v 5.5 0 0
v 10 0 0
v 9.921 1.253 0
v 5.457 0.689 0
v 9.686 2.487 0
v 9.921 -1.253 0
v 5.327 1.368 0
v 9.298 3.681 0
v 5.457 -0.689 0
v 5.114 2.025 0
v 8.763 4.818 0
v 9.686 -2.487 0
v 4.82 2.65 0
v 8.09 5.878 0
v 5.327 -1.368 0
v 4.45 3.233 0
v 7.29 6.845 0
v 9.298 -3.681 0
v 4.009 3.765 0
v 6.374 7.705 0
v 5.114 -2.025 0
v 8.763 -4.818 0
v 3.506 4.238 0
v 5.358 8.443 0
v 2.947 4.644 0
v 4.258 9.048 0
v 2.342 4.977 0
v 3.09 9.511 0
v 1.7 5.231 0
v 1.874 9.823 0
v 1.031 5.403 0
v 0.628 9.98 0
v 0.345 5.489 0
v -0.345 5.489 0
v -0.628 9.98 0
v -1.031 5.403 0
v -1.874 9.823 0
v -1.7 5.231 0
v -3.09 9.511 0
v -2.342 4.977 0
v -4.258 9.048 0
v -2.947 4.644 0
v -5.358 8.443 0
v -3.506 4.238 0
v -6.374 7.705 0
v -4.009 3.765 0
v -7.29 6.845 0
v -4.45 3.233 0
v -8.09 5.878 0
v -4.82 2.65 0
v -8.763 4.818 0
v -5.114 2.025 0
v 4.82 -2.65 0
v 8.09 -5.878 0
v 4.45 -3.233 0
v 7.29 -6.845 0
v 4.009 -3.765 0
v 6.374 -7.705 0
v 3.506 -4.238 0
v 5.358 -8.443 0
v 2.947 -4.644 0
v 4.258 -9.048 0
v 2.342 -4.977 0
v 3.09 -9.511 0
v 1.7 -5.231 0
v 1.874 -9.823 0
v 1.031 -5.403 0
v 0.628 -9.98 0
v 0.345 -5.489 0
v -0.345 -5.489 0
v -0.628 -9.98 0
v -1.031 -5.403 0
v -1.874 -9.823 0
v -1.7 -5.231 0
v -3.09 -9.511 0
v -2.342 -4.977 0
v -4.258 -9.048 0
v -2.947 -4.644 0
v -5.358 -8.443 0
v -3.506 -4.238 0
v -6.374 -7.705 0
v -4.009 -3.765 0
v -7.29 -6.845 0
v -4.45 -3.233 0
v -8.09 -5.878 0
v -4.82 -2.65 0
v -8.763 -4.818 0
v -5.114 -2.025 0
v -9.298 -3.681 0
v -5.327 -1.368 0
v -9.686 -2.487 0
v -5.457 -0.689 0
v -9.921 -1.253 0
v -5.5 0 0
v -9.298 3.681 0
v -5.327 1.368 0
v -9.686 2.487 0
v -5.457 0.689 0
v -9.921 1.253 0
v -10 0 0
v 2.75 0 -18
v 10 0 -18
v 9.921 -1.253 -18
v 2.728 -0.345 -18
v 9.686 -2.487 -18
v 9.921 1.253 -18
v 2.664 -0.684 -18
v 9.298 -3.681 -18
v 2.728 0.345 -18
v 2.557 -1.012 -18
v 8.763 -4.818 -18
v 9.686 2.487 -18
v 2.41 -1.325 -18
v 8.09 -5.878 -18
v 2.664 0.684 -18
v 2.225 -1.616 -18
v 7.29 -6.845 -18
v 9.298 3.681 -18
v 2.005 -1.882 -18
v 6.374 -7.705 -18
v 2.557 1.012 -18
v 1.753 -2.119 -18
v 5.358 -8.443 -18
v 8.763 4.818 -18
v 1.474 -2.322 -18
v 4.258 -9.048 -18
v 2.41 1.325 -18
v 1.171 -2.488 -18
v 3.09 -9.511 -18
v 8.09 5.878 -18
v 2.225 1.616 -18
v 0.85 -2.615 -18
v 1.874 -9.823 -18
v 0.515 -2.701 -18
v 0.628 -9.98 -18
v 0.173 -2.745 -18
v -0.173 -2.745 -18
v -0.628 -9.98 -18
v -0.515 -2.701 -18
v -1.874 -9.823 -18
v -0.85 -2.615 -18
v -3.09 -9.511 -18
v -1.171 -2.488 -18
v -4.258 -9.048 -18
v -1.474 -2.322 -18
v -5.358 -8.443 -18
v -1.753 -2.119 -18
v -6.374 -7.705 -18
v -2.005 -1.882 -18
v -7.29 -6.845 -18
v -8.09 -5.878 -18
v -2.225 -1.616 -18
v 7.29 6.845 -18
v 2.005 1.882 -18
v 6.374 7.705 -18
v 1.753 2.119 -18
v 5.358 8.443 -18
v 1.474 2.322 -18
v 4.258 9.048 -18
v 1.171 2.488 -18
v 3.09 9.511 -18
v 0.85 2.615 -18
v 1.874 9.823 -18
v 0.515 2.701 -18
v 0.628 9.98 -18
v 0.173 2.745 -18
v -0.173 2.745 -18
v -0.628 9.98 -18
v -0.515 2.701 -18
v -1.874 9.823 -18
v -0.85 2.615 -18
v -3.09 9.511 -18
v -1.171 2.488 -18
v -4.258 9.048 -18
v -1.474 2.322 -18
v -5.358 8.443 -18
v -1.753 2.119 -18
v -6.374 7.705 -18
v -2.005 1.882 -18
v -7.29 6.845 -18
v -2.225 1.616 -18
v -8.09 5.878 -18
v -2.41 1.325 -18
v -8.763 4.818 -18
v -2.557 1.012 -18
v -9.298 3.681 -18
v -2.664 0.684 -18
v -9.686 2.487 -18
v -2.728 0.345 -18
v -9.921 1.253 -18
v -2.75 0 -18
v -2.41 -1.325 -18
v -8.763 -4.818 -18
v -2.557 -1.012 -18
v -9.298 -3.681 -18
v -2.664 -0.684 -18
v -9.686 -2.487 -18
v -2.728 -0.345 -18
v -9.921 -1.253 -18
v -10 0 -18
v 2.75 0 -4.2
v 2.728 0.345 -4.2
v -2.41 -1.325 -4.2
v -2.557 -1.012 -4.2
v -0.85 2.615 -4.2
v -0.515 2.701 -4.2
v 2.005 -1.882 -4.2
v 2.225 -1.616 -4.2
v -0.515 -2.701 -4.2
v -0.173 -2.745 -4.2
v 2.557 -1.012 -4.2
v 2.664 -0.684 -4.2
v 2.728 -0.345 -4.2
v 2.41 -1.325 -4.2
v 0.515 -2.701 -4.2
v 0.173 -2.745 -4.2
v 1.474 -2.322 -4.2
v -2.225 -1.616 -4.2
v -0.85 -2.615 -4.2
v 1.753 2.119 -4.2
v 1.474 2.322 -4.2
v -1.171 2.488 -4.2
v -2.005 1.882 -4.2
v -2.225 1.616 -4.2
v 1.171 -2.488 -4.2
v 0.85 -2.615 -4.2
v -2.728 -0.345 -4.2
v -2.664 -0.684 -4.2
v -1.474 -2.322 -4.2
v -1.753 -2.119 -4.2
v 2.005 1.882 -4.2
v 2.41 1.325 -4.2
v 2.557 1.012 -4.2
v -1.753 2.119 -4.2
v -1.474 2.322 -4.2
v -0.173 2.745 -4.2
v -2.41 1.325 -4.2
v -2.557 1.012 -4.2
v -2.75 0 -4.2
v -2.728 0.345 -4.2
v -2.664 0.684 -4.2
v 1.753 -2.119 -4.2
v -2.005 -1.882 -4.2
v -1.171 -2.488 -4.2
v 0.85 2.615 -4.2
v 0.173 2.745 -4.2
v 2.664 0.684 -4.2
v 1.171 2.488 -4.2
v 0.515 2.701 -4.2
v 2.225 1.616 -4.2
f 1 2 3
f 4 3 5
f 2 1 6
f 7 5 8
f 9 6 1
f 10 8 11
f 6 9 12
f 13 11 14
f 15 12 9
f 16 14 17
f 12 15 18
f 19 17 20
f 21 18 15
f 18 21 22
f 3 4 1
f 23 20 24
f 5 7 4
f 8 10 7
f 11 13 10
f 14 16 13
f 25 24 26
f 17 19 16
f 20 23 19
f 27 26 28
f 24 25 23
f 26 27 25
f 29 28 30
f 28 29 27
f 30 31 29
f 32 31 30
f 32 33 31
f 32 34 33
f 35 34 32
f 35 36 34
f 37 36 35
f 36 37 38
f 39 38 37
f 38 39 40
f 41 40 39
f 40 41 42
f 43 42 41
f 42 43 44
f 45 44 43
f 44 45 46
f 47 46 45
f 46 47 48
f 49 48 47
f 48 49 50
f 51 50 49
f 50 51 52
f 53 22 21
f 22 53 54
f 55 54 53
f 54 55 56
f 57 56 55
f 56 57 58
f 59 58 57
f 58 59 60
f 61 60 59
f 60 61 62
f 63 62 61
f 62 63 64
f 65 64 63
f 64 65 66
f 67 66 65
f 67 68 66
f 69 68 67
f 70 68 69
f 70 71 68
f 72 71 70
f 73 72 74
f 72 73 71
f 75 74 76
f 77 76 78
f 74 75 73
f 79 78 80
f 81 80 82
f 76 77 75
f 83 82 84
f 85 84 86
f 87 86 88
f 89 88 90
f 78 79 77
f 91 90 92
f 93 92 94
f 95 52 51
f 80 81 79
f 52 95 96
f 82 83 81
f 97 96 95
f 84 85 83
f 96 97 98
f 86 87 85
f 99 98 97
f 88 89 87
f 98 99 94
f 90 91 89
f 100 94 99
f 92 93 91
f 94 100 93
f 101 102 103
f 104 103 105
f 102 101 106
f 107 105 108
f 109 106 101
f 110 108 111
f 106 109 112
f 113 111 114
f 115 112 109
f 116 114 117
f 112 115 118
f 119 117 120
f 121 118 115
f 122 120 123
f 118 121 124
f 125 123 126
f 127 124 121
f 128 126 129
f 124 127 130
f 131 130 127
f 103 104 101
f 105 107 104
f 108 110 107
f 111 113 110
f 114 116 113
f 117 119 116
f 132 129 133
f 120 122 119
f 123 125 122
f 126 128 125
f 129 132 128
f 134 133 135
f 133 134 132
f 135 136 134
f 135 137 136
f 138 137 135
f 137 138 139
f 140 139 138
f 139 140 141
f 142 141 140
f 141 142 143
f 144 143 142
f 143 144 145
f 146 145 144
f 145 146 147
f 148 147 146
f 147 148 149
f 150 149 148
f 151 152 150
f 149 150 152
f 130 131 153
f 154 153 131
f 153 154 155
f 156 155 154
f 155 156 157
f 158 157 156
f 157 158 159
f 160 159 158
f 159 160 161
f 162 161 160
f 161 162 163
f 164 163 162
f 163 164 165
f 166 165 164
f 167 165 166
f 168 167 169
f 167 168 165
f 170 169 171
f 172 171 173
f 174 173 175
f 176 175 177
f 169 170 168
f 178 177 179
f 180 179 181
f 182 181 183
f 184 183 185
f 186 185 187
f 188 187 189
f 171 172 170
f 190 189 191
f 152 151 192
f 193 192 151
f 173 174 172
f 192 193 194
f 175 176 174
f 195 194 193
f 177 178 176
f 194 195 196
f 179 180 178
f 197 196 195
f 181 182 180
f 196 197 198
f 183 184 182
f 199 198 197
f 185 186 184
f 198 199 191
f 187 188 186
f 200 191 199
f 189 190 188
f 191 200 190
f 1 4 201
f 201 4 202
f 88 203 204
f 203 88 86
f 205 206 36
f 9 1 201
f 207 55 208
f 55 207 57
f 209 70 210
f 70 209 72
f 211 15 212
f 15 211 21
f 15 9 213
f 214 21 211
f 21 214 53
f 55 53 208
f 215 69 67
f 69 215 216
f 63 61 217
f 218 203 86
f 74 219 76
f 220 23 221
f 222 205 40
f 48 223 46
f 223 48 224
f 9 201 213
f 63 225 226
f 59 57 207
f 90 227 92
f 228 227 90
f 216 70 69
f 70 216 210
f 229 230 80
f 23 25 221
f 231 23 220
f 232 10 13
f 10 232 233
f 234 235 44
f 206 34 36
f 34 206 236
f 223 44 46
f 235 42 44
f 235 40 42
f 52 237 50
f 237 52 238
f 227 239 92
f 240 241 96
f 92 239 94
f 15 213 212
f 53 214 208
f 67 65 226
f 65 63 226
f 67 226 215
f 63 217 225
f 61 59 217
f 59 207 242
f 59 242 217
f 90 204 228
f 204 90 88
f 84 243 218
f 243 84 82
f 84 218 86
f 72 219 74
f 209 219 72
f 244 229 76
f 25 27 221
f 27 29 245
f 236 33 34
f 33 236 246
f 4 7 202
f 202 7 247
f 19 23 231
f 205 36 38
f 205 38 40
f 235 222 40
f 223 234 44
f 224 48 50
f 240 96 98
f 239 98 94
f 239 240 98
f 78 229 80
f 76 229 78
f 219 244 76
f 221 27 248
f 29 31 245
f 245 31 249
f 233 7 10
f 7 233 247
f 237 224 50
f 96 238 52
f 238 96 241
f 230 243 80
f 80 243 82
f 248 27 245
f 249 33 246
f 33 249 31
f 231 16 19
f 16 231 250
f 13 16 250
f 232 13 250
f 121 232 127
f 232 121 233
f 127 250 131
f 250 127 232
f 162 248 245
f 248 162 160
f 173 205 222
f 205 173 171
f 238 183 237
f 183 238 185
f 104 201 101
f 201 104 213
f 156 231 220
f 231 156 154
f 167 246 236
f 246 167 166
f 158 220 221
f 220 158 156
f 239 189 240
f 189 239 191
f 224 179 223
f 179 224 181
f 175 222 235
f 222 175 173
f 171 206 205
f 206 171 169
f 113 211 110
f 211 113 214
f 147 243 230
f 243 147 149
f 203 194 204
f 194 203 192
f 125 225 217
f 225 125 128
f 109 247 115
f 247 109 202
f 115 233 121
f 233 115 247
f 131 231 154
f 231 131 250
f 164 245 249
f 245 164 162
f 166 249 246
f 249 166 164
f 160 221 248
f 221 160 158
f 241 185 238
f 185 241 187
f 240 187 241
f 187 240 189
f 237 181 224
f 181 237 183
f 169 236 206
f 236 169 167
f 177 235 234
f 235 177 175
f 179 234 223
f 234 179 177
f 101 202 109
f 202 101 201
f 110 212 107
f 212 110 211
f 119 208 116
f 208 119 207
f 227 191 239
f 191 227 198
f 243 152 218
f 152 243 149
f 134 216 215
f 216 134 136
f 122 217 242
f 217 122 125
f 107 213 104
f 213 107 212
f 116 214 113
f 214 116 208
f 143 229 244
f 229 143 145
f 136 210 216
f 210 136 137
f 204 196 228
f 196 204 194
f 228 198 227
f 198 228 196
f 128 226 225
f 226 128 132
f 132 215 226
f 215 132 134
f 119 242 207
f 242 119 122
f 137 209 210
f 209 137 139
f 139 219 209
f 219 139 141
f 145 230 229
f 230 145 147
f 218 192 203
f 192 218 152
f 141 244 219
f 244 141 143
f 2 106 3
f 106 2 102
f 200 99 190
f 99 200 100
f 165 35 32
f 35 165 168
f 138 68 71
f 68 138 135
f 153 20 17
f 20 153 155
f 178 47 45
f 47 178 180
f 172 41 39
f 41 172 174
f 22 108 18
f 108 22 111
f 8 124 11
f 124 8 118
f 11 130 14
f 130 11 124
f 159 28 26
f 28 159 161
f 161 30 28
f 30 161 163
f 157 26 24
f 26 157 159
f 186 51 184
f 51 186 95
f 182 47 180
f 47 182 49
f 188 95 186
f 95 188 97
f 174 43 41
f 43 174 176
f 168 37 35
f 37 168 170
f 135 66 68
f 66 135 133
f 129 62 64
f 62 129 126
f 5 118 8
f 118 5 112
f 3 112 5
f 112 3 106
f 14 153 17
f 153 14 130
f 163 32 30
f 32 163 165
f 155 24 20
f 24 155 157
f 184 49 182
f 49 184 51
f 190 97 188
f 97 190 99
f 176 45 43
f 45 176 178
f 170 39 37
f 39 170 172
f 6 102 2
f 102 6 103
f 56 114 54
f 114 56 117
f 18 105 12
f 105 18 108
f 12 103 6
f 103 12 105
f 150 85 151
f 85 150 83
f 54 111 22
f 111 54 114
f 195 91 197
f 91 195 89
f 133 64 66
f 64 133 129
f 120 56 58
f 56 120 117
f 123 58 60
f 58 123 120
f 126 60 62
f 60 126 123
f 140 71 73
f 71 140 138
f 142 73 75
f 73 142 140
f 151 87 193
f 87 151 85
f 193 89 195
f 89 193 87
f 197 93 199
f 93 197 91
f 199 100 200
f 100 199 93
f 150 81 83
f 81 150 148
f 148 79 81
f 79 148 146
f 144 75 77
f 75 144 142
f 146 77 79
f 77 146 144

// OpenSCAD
$fn = 50;


difference() {
	union() {
		translate(v = [0, 0, -18.0000000000]) {
			cylinder(h = 18, r = 10.0000000000);
		}
	}
	union() {
		translate(v = [0, 0, 0]) {
			rotate(a = [0, 0, 0]) {
				difference() {
					union() {
						#translate(v = [0, 0, -18.0000000000]) {
							cylinder(h = 18, r = 2.2500000000);
						}
						#translate(v = [0, 0, -4.2000000000]) {
							cylinder(h = 4.2000000000, r1 = 2.7500000000, r2 = 5.5000000000);
						}
						#translate(v = [0, 0, -18.0000000000]) {
							cylinder(h = 18, r = 2.7500000000);
						}
						#translate(v = [0, 0, -18.0000000000]) {
							cylinder(h = 18, r = 2.2500000000);
						}
					}
					union();
				}
			}
		}
	}
}
